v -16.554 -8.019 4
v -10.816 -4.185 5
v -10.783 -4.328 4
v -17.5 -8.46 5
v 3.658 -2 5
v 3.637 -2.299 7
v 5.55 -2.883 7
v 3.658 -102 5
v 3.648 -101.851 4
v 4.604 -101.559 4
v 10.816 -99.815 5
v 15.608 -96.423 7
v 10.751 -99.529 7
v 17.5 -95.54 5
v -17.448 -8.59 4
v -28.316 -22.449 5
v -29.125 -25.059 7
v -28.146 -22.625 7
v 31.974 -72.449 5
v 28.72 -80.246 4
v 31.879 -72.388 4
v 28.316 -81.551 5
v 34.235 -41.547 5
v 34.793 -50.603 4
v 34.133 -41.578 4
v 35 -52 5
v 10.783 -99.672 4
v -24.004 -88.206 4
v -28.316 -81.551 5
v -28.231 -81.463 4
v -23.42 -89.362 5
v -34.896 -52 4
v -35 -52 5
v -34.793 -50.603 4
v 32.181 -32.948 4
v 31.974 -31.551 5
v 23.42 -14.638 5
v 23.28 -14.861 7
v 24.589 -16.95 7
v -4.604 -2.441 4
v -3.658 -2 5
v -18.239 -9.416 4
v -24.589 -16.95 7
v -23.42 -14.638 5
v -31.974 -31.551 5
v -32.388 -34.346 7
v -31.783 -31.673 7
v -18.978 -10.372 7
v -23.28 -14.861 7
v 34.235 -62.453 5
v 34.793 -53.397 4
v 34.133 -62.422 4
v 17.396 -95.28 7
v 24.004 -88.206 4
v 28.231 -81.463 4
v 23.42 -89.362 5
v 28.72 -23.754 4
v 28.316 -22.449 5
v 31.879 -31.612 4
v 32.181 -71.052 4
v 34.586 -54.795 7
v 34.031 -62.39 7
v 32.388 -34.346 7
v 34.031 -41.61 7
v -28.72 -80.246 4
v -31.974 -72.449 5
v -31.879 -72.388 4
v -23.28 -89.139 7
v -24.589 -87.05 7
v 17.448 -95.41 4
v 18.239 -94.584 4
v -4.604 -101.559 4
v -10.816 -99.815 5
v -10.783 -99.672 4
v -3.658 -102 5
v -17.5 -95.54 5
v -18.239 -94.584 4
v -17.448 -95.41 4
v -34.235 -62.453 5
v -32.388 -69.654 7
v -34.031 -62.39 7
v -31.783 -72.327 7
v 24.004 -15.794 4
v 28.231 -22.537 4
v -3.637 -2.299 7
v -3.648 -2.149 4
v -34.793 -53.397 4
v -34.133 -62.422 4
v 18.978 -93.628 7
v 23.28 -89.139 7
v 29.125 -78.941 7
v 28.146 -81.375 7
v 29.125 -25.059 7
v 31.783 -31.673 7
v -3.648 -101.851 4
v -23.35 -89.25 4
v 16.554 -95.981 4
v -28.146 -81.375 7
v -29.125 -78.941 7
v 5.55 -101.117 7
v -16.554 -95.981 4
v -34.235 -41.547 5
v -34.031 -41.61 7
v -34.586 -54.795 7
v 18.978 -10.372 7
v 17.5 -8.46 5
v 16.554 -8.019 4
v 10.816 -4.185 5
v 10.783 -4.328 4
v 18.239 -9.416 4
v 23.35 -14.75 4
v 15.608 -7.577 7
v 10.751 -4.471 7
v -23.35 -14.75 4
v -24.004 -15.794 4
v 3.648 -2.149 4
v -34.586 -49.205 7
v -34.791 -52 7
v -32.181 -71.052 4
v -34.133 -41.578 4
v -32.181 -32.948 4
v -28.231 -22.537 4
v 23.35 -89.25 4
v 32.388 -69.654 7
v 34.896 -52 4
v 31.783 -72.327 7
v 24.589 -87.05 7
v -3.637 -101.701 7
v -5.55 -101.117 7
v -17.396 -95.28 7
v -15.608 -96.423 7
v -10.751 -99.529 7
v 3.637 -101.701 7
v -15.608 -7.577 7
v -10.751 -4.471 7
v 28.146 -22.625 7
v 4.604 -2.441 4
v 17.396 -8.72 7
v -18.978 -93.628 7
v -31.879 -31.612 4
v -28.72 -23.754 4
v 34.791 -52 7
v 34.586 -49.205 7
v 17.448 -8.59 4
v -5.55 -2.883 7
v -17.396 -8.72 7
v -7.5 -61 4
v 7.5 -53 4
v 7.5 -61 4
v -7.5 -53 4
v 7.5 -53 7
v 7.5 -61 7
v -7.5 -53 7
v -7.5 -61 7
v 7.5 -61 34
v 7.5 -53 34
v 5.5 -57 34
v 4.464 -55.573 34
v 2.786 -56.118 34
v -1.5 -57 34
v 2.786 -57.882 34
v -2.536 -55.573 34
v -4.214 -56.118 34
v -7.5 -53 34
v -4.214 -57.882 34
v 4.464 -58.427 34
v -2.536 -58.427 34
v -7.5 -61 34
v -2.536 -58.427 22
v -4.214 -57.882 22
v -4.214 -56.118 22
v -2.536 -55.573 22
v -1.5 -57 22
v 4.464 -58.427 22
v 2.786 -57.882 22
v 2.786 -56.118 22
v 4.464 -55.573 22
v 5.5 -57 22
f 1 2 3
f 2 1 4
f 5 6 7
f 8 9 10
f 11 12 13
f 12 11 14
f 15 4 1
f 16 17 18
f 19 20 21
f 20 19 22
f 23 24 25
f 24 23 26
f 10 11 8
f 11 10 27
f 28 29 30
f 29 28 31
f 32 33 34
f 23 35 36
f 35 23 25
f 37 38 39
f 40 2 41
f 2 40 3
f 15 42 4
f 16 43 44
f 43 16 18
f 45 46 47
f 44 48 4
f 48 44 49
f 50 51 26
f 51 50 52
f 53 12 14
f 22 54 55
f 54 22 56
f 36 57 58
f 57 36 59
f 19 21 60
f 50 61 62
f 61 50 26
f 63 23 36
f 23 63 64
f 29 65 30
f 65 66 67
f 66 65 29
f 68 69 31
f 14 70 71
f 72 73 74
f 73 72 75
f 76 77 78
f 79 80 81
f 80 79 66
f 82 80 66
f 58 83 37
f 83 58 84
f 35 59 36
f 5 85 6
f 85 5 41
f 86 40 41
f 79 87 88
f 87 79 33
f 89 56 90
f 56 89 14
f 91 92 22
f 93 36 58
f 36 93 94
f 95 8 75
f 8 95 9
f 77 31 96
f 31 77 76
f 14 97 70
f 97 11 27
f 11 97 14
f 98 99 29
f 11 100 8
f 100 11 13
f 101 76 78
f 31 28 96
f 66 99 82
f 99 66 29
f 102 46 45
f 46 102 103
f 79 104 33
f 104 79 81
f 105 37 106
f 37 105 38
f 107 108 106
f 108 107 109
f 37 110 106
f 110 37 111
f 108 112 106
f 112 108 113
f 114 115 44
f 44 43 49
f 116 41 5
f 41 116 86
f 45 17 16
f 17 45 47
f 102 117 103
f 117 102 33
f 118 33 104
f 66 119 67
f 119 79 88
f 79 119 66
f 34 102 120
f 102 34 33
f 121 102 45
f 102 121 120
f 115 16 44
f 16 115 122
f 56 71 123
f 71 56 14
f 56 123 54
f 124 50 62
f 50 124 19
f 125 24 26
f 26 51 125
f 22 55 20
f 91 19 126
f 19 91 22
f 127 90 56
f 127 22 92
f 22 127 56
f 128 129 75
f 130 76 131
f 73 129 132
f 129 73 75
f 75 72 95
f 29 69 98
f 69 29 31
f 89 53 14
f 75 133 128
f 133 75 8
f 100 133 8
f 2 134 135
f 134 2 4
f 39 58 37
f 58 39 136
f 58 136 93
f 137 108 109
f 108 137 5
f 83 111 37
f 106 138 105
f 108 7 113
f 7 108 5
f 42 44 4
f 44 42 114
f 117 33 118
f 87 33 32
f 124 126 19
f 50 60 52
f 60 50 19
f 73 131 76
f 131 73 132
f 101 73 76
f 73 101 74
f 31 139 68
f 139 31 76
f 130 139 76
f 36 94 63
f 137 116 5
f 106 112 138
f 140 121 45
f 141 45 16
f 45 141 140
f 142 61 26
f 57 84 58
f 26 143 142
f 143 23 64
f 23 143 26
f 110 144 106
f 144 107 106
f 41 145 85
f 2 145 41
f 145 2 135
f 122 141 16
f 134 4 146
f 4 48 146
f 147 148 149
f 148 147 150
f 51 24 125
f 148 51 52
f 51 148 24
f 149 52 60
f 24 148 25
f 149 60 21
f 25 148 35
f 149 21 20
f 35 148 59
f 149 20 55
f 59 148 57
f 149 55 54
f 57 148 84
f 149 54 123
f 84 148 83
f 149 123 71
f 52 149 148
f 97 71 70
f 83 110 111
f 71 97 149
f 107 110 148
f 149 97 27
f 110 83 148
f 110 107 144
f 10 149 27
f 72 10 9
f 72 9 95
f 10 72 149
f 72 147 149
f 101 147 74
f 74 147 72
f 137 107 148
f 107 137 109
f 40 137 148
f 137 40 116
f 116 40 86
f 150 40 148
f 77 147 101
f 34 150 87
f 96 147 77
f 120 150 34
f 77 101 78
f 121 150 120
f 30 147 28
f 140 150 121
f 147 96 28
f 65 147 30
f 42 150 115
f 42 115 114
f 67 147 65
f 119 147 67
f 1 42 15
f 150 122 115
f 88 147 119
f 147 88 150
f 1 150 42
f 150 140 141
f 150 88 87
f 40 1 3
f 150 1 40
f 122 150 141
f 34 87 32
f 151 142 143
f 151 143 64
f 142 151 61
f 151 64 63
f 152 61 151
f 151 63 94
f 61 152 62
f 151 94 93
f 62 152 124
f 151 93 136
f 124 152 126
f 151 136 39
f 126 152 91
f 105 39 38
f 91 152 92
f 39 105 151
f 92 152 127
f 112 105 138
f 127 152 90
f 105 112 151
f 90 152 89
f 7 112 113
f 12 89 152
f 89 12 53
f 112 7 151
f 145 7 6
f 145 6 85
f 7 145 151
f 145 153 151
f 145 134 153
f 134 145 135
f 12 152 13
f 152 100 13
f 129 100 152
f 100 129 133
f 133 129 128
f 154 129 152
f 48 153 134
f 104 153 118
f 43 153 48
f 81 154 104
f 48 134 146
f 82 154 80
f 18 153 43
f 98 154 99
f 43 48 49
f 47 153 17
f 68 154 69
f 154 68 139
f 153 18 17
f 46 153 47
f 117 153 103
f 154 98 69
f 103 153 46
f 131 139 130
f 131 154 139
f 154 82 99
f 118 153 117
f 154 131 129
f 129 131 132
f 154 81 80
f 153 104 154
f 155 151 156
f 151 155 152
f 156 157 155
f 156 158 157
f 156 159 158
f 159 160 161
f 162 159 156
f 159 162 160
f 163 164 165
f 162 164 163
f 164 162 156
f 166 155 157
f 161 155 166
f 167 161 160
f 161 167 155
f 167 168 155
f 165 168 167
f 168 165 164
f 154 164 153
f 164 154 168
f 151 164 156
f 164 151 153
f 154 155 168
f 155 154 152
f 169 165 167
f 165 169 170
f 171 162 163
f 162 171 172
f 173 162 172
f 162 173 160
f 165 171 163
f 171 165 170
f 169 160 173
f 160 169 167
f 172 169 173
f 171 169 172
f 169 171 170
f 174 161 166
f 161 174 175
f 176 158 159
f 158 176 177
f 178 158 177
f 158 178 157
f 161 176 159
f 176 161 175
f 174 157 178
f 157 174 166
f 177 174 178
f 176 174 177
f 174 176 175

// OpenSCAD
standoff=-61;

intersection(){
    difference (){
       translate ([+0,-52,5]) resize([70,100,70]) sphere (100);
       translate ([-35,-102,-46]) cube ([90, 120, 50]); // big cube to cut sphere
    }
       translate ([-35,-102,-46]) cube ([90, 120, 53]); // big cube to cut sphere
}

difference(){
    translate ([-7.5,standoff,4]) cube ([15, 8, 30]); // big cube to cut sphere
    translate ([-3,standoff+4,+22]) cylinder (h=20, d=3);//wire hole
    translate ([+4,standoff+4,+22]) cylinder (h=20, d=3);//wire hole
}
